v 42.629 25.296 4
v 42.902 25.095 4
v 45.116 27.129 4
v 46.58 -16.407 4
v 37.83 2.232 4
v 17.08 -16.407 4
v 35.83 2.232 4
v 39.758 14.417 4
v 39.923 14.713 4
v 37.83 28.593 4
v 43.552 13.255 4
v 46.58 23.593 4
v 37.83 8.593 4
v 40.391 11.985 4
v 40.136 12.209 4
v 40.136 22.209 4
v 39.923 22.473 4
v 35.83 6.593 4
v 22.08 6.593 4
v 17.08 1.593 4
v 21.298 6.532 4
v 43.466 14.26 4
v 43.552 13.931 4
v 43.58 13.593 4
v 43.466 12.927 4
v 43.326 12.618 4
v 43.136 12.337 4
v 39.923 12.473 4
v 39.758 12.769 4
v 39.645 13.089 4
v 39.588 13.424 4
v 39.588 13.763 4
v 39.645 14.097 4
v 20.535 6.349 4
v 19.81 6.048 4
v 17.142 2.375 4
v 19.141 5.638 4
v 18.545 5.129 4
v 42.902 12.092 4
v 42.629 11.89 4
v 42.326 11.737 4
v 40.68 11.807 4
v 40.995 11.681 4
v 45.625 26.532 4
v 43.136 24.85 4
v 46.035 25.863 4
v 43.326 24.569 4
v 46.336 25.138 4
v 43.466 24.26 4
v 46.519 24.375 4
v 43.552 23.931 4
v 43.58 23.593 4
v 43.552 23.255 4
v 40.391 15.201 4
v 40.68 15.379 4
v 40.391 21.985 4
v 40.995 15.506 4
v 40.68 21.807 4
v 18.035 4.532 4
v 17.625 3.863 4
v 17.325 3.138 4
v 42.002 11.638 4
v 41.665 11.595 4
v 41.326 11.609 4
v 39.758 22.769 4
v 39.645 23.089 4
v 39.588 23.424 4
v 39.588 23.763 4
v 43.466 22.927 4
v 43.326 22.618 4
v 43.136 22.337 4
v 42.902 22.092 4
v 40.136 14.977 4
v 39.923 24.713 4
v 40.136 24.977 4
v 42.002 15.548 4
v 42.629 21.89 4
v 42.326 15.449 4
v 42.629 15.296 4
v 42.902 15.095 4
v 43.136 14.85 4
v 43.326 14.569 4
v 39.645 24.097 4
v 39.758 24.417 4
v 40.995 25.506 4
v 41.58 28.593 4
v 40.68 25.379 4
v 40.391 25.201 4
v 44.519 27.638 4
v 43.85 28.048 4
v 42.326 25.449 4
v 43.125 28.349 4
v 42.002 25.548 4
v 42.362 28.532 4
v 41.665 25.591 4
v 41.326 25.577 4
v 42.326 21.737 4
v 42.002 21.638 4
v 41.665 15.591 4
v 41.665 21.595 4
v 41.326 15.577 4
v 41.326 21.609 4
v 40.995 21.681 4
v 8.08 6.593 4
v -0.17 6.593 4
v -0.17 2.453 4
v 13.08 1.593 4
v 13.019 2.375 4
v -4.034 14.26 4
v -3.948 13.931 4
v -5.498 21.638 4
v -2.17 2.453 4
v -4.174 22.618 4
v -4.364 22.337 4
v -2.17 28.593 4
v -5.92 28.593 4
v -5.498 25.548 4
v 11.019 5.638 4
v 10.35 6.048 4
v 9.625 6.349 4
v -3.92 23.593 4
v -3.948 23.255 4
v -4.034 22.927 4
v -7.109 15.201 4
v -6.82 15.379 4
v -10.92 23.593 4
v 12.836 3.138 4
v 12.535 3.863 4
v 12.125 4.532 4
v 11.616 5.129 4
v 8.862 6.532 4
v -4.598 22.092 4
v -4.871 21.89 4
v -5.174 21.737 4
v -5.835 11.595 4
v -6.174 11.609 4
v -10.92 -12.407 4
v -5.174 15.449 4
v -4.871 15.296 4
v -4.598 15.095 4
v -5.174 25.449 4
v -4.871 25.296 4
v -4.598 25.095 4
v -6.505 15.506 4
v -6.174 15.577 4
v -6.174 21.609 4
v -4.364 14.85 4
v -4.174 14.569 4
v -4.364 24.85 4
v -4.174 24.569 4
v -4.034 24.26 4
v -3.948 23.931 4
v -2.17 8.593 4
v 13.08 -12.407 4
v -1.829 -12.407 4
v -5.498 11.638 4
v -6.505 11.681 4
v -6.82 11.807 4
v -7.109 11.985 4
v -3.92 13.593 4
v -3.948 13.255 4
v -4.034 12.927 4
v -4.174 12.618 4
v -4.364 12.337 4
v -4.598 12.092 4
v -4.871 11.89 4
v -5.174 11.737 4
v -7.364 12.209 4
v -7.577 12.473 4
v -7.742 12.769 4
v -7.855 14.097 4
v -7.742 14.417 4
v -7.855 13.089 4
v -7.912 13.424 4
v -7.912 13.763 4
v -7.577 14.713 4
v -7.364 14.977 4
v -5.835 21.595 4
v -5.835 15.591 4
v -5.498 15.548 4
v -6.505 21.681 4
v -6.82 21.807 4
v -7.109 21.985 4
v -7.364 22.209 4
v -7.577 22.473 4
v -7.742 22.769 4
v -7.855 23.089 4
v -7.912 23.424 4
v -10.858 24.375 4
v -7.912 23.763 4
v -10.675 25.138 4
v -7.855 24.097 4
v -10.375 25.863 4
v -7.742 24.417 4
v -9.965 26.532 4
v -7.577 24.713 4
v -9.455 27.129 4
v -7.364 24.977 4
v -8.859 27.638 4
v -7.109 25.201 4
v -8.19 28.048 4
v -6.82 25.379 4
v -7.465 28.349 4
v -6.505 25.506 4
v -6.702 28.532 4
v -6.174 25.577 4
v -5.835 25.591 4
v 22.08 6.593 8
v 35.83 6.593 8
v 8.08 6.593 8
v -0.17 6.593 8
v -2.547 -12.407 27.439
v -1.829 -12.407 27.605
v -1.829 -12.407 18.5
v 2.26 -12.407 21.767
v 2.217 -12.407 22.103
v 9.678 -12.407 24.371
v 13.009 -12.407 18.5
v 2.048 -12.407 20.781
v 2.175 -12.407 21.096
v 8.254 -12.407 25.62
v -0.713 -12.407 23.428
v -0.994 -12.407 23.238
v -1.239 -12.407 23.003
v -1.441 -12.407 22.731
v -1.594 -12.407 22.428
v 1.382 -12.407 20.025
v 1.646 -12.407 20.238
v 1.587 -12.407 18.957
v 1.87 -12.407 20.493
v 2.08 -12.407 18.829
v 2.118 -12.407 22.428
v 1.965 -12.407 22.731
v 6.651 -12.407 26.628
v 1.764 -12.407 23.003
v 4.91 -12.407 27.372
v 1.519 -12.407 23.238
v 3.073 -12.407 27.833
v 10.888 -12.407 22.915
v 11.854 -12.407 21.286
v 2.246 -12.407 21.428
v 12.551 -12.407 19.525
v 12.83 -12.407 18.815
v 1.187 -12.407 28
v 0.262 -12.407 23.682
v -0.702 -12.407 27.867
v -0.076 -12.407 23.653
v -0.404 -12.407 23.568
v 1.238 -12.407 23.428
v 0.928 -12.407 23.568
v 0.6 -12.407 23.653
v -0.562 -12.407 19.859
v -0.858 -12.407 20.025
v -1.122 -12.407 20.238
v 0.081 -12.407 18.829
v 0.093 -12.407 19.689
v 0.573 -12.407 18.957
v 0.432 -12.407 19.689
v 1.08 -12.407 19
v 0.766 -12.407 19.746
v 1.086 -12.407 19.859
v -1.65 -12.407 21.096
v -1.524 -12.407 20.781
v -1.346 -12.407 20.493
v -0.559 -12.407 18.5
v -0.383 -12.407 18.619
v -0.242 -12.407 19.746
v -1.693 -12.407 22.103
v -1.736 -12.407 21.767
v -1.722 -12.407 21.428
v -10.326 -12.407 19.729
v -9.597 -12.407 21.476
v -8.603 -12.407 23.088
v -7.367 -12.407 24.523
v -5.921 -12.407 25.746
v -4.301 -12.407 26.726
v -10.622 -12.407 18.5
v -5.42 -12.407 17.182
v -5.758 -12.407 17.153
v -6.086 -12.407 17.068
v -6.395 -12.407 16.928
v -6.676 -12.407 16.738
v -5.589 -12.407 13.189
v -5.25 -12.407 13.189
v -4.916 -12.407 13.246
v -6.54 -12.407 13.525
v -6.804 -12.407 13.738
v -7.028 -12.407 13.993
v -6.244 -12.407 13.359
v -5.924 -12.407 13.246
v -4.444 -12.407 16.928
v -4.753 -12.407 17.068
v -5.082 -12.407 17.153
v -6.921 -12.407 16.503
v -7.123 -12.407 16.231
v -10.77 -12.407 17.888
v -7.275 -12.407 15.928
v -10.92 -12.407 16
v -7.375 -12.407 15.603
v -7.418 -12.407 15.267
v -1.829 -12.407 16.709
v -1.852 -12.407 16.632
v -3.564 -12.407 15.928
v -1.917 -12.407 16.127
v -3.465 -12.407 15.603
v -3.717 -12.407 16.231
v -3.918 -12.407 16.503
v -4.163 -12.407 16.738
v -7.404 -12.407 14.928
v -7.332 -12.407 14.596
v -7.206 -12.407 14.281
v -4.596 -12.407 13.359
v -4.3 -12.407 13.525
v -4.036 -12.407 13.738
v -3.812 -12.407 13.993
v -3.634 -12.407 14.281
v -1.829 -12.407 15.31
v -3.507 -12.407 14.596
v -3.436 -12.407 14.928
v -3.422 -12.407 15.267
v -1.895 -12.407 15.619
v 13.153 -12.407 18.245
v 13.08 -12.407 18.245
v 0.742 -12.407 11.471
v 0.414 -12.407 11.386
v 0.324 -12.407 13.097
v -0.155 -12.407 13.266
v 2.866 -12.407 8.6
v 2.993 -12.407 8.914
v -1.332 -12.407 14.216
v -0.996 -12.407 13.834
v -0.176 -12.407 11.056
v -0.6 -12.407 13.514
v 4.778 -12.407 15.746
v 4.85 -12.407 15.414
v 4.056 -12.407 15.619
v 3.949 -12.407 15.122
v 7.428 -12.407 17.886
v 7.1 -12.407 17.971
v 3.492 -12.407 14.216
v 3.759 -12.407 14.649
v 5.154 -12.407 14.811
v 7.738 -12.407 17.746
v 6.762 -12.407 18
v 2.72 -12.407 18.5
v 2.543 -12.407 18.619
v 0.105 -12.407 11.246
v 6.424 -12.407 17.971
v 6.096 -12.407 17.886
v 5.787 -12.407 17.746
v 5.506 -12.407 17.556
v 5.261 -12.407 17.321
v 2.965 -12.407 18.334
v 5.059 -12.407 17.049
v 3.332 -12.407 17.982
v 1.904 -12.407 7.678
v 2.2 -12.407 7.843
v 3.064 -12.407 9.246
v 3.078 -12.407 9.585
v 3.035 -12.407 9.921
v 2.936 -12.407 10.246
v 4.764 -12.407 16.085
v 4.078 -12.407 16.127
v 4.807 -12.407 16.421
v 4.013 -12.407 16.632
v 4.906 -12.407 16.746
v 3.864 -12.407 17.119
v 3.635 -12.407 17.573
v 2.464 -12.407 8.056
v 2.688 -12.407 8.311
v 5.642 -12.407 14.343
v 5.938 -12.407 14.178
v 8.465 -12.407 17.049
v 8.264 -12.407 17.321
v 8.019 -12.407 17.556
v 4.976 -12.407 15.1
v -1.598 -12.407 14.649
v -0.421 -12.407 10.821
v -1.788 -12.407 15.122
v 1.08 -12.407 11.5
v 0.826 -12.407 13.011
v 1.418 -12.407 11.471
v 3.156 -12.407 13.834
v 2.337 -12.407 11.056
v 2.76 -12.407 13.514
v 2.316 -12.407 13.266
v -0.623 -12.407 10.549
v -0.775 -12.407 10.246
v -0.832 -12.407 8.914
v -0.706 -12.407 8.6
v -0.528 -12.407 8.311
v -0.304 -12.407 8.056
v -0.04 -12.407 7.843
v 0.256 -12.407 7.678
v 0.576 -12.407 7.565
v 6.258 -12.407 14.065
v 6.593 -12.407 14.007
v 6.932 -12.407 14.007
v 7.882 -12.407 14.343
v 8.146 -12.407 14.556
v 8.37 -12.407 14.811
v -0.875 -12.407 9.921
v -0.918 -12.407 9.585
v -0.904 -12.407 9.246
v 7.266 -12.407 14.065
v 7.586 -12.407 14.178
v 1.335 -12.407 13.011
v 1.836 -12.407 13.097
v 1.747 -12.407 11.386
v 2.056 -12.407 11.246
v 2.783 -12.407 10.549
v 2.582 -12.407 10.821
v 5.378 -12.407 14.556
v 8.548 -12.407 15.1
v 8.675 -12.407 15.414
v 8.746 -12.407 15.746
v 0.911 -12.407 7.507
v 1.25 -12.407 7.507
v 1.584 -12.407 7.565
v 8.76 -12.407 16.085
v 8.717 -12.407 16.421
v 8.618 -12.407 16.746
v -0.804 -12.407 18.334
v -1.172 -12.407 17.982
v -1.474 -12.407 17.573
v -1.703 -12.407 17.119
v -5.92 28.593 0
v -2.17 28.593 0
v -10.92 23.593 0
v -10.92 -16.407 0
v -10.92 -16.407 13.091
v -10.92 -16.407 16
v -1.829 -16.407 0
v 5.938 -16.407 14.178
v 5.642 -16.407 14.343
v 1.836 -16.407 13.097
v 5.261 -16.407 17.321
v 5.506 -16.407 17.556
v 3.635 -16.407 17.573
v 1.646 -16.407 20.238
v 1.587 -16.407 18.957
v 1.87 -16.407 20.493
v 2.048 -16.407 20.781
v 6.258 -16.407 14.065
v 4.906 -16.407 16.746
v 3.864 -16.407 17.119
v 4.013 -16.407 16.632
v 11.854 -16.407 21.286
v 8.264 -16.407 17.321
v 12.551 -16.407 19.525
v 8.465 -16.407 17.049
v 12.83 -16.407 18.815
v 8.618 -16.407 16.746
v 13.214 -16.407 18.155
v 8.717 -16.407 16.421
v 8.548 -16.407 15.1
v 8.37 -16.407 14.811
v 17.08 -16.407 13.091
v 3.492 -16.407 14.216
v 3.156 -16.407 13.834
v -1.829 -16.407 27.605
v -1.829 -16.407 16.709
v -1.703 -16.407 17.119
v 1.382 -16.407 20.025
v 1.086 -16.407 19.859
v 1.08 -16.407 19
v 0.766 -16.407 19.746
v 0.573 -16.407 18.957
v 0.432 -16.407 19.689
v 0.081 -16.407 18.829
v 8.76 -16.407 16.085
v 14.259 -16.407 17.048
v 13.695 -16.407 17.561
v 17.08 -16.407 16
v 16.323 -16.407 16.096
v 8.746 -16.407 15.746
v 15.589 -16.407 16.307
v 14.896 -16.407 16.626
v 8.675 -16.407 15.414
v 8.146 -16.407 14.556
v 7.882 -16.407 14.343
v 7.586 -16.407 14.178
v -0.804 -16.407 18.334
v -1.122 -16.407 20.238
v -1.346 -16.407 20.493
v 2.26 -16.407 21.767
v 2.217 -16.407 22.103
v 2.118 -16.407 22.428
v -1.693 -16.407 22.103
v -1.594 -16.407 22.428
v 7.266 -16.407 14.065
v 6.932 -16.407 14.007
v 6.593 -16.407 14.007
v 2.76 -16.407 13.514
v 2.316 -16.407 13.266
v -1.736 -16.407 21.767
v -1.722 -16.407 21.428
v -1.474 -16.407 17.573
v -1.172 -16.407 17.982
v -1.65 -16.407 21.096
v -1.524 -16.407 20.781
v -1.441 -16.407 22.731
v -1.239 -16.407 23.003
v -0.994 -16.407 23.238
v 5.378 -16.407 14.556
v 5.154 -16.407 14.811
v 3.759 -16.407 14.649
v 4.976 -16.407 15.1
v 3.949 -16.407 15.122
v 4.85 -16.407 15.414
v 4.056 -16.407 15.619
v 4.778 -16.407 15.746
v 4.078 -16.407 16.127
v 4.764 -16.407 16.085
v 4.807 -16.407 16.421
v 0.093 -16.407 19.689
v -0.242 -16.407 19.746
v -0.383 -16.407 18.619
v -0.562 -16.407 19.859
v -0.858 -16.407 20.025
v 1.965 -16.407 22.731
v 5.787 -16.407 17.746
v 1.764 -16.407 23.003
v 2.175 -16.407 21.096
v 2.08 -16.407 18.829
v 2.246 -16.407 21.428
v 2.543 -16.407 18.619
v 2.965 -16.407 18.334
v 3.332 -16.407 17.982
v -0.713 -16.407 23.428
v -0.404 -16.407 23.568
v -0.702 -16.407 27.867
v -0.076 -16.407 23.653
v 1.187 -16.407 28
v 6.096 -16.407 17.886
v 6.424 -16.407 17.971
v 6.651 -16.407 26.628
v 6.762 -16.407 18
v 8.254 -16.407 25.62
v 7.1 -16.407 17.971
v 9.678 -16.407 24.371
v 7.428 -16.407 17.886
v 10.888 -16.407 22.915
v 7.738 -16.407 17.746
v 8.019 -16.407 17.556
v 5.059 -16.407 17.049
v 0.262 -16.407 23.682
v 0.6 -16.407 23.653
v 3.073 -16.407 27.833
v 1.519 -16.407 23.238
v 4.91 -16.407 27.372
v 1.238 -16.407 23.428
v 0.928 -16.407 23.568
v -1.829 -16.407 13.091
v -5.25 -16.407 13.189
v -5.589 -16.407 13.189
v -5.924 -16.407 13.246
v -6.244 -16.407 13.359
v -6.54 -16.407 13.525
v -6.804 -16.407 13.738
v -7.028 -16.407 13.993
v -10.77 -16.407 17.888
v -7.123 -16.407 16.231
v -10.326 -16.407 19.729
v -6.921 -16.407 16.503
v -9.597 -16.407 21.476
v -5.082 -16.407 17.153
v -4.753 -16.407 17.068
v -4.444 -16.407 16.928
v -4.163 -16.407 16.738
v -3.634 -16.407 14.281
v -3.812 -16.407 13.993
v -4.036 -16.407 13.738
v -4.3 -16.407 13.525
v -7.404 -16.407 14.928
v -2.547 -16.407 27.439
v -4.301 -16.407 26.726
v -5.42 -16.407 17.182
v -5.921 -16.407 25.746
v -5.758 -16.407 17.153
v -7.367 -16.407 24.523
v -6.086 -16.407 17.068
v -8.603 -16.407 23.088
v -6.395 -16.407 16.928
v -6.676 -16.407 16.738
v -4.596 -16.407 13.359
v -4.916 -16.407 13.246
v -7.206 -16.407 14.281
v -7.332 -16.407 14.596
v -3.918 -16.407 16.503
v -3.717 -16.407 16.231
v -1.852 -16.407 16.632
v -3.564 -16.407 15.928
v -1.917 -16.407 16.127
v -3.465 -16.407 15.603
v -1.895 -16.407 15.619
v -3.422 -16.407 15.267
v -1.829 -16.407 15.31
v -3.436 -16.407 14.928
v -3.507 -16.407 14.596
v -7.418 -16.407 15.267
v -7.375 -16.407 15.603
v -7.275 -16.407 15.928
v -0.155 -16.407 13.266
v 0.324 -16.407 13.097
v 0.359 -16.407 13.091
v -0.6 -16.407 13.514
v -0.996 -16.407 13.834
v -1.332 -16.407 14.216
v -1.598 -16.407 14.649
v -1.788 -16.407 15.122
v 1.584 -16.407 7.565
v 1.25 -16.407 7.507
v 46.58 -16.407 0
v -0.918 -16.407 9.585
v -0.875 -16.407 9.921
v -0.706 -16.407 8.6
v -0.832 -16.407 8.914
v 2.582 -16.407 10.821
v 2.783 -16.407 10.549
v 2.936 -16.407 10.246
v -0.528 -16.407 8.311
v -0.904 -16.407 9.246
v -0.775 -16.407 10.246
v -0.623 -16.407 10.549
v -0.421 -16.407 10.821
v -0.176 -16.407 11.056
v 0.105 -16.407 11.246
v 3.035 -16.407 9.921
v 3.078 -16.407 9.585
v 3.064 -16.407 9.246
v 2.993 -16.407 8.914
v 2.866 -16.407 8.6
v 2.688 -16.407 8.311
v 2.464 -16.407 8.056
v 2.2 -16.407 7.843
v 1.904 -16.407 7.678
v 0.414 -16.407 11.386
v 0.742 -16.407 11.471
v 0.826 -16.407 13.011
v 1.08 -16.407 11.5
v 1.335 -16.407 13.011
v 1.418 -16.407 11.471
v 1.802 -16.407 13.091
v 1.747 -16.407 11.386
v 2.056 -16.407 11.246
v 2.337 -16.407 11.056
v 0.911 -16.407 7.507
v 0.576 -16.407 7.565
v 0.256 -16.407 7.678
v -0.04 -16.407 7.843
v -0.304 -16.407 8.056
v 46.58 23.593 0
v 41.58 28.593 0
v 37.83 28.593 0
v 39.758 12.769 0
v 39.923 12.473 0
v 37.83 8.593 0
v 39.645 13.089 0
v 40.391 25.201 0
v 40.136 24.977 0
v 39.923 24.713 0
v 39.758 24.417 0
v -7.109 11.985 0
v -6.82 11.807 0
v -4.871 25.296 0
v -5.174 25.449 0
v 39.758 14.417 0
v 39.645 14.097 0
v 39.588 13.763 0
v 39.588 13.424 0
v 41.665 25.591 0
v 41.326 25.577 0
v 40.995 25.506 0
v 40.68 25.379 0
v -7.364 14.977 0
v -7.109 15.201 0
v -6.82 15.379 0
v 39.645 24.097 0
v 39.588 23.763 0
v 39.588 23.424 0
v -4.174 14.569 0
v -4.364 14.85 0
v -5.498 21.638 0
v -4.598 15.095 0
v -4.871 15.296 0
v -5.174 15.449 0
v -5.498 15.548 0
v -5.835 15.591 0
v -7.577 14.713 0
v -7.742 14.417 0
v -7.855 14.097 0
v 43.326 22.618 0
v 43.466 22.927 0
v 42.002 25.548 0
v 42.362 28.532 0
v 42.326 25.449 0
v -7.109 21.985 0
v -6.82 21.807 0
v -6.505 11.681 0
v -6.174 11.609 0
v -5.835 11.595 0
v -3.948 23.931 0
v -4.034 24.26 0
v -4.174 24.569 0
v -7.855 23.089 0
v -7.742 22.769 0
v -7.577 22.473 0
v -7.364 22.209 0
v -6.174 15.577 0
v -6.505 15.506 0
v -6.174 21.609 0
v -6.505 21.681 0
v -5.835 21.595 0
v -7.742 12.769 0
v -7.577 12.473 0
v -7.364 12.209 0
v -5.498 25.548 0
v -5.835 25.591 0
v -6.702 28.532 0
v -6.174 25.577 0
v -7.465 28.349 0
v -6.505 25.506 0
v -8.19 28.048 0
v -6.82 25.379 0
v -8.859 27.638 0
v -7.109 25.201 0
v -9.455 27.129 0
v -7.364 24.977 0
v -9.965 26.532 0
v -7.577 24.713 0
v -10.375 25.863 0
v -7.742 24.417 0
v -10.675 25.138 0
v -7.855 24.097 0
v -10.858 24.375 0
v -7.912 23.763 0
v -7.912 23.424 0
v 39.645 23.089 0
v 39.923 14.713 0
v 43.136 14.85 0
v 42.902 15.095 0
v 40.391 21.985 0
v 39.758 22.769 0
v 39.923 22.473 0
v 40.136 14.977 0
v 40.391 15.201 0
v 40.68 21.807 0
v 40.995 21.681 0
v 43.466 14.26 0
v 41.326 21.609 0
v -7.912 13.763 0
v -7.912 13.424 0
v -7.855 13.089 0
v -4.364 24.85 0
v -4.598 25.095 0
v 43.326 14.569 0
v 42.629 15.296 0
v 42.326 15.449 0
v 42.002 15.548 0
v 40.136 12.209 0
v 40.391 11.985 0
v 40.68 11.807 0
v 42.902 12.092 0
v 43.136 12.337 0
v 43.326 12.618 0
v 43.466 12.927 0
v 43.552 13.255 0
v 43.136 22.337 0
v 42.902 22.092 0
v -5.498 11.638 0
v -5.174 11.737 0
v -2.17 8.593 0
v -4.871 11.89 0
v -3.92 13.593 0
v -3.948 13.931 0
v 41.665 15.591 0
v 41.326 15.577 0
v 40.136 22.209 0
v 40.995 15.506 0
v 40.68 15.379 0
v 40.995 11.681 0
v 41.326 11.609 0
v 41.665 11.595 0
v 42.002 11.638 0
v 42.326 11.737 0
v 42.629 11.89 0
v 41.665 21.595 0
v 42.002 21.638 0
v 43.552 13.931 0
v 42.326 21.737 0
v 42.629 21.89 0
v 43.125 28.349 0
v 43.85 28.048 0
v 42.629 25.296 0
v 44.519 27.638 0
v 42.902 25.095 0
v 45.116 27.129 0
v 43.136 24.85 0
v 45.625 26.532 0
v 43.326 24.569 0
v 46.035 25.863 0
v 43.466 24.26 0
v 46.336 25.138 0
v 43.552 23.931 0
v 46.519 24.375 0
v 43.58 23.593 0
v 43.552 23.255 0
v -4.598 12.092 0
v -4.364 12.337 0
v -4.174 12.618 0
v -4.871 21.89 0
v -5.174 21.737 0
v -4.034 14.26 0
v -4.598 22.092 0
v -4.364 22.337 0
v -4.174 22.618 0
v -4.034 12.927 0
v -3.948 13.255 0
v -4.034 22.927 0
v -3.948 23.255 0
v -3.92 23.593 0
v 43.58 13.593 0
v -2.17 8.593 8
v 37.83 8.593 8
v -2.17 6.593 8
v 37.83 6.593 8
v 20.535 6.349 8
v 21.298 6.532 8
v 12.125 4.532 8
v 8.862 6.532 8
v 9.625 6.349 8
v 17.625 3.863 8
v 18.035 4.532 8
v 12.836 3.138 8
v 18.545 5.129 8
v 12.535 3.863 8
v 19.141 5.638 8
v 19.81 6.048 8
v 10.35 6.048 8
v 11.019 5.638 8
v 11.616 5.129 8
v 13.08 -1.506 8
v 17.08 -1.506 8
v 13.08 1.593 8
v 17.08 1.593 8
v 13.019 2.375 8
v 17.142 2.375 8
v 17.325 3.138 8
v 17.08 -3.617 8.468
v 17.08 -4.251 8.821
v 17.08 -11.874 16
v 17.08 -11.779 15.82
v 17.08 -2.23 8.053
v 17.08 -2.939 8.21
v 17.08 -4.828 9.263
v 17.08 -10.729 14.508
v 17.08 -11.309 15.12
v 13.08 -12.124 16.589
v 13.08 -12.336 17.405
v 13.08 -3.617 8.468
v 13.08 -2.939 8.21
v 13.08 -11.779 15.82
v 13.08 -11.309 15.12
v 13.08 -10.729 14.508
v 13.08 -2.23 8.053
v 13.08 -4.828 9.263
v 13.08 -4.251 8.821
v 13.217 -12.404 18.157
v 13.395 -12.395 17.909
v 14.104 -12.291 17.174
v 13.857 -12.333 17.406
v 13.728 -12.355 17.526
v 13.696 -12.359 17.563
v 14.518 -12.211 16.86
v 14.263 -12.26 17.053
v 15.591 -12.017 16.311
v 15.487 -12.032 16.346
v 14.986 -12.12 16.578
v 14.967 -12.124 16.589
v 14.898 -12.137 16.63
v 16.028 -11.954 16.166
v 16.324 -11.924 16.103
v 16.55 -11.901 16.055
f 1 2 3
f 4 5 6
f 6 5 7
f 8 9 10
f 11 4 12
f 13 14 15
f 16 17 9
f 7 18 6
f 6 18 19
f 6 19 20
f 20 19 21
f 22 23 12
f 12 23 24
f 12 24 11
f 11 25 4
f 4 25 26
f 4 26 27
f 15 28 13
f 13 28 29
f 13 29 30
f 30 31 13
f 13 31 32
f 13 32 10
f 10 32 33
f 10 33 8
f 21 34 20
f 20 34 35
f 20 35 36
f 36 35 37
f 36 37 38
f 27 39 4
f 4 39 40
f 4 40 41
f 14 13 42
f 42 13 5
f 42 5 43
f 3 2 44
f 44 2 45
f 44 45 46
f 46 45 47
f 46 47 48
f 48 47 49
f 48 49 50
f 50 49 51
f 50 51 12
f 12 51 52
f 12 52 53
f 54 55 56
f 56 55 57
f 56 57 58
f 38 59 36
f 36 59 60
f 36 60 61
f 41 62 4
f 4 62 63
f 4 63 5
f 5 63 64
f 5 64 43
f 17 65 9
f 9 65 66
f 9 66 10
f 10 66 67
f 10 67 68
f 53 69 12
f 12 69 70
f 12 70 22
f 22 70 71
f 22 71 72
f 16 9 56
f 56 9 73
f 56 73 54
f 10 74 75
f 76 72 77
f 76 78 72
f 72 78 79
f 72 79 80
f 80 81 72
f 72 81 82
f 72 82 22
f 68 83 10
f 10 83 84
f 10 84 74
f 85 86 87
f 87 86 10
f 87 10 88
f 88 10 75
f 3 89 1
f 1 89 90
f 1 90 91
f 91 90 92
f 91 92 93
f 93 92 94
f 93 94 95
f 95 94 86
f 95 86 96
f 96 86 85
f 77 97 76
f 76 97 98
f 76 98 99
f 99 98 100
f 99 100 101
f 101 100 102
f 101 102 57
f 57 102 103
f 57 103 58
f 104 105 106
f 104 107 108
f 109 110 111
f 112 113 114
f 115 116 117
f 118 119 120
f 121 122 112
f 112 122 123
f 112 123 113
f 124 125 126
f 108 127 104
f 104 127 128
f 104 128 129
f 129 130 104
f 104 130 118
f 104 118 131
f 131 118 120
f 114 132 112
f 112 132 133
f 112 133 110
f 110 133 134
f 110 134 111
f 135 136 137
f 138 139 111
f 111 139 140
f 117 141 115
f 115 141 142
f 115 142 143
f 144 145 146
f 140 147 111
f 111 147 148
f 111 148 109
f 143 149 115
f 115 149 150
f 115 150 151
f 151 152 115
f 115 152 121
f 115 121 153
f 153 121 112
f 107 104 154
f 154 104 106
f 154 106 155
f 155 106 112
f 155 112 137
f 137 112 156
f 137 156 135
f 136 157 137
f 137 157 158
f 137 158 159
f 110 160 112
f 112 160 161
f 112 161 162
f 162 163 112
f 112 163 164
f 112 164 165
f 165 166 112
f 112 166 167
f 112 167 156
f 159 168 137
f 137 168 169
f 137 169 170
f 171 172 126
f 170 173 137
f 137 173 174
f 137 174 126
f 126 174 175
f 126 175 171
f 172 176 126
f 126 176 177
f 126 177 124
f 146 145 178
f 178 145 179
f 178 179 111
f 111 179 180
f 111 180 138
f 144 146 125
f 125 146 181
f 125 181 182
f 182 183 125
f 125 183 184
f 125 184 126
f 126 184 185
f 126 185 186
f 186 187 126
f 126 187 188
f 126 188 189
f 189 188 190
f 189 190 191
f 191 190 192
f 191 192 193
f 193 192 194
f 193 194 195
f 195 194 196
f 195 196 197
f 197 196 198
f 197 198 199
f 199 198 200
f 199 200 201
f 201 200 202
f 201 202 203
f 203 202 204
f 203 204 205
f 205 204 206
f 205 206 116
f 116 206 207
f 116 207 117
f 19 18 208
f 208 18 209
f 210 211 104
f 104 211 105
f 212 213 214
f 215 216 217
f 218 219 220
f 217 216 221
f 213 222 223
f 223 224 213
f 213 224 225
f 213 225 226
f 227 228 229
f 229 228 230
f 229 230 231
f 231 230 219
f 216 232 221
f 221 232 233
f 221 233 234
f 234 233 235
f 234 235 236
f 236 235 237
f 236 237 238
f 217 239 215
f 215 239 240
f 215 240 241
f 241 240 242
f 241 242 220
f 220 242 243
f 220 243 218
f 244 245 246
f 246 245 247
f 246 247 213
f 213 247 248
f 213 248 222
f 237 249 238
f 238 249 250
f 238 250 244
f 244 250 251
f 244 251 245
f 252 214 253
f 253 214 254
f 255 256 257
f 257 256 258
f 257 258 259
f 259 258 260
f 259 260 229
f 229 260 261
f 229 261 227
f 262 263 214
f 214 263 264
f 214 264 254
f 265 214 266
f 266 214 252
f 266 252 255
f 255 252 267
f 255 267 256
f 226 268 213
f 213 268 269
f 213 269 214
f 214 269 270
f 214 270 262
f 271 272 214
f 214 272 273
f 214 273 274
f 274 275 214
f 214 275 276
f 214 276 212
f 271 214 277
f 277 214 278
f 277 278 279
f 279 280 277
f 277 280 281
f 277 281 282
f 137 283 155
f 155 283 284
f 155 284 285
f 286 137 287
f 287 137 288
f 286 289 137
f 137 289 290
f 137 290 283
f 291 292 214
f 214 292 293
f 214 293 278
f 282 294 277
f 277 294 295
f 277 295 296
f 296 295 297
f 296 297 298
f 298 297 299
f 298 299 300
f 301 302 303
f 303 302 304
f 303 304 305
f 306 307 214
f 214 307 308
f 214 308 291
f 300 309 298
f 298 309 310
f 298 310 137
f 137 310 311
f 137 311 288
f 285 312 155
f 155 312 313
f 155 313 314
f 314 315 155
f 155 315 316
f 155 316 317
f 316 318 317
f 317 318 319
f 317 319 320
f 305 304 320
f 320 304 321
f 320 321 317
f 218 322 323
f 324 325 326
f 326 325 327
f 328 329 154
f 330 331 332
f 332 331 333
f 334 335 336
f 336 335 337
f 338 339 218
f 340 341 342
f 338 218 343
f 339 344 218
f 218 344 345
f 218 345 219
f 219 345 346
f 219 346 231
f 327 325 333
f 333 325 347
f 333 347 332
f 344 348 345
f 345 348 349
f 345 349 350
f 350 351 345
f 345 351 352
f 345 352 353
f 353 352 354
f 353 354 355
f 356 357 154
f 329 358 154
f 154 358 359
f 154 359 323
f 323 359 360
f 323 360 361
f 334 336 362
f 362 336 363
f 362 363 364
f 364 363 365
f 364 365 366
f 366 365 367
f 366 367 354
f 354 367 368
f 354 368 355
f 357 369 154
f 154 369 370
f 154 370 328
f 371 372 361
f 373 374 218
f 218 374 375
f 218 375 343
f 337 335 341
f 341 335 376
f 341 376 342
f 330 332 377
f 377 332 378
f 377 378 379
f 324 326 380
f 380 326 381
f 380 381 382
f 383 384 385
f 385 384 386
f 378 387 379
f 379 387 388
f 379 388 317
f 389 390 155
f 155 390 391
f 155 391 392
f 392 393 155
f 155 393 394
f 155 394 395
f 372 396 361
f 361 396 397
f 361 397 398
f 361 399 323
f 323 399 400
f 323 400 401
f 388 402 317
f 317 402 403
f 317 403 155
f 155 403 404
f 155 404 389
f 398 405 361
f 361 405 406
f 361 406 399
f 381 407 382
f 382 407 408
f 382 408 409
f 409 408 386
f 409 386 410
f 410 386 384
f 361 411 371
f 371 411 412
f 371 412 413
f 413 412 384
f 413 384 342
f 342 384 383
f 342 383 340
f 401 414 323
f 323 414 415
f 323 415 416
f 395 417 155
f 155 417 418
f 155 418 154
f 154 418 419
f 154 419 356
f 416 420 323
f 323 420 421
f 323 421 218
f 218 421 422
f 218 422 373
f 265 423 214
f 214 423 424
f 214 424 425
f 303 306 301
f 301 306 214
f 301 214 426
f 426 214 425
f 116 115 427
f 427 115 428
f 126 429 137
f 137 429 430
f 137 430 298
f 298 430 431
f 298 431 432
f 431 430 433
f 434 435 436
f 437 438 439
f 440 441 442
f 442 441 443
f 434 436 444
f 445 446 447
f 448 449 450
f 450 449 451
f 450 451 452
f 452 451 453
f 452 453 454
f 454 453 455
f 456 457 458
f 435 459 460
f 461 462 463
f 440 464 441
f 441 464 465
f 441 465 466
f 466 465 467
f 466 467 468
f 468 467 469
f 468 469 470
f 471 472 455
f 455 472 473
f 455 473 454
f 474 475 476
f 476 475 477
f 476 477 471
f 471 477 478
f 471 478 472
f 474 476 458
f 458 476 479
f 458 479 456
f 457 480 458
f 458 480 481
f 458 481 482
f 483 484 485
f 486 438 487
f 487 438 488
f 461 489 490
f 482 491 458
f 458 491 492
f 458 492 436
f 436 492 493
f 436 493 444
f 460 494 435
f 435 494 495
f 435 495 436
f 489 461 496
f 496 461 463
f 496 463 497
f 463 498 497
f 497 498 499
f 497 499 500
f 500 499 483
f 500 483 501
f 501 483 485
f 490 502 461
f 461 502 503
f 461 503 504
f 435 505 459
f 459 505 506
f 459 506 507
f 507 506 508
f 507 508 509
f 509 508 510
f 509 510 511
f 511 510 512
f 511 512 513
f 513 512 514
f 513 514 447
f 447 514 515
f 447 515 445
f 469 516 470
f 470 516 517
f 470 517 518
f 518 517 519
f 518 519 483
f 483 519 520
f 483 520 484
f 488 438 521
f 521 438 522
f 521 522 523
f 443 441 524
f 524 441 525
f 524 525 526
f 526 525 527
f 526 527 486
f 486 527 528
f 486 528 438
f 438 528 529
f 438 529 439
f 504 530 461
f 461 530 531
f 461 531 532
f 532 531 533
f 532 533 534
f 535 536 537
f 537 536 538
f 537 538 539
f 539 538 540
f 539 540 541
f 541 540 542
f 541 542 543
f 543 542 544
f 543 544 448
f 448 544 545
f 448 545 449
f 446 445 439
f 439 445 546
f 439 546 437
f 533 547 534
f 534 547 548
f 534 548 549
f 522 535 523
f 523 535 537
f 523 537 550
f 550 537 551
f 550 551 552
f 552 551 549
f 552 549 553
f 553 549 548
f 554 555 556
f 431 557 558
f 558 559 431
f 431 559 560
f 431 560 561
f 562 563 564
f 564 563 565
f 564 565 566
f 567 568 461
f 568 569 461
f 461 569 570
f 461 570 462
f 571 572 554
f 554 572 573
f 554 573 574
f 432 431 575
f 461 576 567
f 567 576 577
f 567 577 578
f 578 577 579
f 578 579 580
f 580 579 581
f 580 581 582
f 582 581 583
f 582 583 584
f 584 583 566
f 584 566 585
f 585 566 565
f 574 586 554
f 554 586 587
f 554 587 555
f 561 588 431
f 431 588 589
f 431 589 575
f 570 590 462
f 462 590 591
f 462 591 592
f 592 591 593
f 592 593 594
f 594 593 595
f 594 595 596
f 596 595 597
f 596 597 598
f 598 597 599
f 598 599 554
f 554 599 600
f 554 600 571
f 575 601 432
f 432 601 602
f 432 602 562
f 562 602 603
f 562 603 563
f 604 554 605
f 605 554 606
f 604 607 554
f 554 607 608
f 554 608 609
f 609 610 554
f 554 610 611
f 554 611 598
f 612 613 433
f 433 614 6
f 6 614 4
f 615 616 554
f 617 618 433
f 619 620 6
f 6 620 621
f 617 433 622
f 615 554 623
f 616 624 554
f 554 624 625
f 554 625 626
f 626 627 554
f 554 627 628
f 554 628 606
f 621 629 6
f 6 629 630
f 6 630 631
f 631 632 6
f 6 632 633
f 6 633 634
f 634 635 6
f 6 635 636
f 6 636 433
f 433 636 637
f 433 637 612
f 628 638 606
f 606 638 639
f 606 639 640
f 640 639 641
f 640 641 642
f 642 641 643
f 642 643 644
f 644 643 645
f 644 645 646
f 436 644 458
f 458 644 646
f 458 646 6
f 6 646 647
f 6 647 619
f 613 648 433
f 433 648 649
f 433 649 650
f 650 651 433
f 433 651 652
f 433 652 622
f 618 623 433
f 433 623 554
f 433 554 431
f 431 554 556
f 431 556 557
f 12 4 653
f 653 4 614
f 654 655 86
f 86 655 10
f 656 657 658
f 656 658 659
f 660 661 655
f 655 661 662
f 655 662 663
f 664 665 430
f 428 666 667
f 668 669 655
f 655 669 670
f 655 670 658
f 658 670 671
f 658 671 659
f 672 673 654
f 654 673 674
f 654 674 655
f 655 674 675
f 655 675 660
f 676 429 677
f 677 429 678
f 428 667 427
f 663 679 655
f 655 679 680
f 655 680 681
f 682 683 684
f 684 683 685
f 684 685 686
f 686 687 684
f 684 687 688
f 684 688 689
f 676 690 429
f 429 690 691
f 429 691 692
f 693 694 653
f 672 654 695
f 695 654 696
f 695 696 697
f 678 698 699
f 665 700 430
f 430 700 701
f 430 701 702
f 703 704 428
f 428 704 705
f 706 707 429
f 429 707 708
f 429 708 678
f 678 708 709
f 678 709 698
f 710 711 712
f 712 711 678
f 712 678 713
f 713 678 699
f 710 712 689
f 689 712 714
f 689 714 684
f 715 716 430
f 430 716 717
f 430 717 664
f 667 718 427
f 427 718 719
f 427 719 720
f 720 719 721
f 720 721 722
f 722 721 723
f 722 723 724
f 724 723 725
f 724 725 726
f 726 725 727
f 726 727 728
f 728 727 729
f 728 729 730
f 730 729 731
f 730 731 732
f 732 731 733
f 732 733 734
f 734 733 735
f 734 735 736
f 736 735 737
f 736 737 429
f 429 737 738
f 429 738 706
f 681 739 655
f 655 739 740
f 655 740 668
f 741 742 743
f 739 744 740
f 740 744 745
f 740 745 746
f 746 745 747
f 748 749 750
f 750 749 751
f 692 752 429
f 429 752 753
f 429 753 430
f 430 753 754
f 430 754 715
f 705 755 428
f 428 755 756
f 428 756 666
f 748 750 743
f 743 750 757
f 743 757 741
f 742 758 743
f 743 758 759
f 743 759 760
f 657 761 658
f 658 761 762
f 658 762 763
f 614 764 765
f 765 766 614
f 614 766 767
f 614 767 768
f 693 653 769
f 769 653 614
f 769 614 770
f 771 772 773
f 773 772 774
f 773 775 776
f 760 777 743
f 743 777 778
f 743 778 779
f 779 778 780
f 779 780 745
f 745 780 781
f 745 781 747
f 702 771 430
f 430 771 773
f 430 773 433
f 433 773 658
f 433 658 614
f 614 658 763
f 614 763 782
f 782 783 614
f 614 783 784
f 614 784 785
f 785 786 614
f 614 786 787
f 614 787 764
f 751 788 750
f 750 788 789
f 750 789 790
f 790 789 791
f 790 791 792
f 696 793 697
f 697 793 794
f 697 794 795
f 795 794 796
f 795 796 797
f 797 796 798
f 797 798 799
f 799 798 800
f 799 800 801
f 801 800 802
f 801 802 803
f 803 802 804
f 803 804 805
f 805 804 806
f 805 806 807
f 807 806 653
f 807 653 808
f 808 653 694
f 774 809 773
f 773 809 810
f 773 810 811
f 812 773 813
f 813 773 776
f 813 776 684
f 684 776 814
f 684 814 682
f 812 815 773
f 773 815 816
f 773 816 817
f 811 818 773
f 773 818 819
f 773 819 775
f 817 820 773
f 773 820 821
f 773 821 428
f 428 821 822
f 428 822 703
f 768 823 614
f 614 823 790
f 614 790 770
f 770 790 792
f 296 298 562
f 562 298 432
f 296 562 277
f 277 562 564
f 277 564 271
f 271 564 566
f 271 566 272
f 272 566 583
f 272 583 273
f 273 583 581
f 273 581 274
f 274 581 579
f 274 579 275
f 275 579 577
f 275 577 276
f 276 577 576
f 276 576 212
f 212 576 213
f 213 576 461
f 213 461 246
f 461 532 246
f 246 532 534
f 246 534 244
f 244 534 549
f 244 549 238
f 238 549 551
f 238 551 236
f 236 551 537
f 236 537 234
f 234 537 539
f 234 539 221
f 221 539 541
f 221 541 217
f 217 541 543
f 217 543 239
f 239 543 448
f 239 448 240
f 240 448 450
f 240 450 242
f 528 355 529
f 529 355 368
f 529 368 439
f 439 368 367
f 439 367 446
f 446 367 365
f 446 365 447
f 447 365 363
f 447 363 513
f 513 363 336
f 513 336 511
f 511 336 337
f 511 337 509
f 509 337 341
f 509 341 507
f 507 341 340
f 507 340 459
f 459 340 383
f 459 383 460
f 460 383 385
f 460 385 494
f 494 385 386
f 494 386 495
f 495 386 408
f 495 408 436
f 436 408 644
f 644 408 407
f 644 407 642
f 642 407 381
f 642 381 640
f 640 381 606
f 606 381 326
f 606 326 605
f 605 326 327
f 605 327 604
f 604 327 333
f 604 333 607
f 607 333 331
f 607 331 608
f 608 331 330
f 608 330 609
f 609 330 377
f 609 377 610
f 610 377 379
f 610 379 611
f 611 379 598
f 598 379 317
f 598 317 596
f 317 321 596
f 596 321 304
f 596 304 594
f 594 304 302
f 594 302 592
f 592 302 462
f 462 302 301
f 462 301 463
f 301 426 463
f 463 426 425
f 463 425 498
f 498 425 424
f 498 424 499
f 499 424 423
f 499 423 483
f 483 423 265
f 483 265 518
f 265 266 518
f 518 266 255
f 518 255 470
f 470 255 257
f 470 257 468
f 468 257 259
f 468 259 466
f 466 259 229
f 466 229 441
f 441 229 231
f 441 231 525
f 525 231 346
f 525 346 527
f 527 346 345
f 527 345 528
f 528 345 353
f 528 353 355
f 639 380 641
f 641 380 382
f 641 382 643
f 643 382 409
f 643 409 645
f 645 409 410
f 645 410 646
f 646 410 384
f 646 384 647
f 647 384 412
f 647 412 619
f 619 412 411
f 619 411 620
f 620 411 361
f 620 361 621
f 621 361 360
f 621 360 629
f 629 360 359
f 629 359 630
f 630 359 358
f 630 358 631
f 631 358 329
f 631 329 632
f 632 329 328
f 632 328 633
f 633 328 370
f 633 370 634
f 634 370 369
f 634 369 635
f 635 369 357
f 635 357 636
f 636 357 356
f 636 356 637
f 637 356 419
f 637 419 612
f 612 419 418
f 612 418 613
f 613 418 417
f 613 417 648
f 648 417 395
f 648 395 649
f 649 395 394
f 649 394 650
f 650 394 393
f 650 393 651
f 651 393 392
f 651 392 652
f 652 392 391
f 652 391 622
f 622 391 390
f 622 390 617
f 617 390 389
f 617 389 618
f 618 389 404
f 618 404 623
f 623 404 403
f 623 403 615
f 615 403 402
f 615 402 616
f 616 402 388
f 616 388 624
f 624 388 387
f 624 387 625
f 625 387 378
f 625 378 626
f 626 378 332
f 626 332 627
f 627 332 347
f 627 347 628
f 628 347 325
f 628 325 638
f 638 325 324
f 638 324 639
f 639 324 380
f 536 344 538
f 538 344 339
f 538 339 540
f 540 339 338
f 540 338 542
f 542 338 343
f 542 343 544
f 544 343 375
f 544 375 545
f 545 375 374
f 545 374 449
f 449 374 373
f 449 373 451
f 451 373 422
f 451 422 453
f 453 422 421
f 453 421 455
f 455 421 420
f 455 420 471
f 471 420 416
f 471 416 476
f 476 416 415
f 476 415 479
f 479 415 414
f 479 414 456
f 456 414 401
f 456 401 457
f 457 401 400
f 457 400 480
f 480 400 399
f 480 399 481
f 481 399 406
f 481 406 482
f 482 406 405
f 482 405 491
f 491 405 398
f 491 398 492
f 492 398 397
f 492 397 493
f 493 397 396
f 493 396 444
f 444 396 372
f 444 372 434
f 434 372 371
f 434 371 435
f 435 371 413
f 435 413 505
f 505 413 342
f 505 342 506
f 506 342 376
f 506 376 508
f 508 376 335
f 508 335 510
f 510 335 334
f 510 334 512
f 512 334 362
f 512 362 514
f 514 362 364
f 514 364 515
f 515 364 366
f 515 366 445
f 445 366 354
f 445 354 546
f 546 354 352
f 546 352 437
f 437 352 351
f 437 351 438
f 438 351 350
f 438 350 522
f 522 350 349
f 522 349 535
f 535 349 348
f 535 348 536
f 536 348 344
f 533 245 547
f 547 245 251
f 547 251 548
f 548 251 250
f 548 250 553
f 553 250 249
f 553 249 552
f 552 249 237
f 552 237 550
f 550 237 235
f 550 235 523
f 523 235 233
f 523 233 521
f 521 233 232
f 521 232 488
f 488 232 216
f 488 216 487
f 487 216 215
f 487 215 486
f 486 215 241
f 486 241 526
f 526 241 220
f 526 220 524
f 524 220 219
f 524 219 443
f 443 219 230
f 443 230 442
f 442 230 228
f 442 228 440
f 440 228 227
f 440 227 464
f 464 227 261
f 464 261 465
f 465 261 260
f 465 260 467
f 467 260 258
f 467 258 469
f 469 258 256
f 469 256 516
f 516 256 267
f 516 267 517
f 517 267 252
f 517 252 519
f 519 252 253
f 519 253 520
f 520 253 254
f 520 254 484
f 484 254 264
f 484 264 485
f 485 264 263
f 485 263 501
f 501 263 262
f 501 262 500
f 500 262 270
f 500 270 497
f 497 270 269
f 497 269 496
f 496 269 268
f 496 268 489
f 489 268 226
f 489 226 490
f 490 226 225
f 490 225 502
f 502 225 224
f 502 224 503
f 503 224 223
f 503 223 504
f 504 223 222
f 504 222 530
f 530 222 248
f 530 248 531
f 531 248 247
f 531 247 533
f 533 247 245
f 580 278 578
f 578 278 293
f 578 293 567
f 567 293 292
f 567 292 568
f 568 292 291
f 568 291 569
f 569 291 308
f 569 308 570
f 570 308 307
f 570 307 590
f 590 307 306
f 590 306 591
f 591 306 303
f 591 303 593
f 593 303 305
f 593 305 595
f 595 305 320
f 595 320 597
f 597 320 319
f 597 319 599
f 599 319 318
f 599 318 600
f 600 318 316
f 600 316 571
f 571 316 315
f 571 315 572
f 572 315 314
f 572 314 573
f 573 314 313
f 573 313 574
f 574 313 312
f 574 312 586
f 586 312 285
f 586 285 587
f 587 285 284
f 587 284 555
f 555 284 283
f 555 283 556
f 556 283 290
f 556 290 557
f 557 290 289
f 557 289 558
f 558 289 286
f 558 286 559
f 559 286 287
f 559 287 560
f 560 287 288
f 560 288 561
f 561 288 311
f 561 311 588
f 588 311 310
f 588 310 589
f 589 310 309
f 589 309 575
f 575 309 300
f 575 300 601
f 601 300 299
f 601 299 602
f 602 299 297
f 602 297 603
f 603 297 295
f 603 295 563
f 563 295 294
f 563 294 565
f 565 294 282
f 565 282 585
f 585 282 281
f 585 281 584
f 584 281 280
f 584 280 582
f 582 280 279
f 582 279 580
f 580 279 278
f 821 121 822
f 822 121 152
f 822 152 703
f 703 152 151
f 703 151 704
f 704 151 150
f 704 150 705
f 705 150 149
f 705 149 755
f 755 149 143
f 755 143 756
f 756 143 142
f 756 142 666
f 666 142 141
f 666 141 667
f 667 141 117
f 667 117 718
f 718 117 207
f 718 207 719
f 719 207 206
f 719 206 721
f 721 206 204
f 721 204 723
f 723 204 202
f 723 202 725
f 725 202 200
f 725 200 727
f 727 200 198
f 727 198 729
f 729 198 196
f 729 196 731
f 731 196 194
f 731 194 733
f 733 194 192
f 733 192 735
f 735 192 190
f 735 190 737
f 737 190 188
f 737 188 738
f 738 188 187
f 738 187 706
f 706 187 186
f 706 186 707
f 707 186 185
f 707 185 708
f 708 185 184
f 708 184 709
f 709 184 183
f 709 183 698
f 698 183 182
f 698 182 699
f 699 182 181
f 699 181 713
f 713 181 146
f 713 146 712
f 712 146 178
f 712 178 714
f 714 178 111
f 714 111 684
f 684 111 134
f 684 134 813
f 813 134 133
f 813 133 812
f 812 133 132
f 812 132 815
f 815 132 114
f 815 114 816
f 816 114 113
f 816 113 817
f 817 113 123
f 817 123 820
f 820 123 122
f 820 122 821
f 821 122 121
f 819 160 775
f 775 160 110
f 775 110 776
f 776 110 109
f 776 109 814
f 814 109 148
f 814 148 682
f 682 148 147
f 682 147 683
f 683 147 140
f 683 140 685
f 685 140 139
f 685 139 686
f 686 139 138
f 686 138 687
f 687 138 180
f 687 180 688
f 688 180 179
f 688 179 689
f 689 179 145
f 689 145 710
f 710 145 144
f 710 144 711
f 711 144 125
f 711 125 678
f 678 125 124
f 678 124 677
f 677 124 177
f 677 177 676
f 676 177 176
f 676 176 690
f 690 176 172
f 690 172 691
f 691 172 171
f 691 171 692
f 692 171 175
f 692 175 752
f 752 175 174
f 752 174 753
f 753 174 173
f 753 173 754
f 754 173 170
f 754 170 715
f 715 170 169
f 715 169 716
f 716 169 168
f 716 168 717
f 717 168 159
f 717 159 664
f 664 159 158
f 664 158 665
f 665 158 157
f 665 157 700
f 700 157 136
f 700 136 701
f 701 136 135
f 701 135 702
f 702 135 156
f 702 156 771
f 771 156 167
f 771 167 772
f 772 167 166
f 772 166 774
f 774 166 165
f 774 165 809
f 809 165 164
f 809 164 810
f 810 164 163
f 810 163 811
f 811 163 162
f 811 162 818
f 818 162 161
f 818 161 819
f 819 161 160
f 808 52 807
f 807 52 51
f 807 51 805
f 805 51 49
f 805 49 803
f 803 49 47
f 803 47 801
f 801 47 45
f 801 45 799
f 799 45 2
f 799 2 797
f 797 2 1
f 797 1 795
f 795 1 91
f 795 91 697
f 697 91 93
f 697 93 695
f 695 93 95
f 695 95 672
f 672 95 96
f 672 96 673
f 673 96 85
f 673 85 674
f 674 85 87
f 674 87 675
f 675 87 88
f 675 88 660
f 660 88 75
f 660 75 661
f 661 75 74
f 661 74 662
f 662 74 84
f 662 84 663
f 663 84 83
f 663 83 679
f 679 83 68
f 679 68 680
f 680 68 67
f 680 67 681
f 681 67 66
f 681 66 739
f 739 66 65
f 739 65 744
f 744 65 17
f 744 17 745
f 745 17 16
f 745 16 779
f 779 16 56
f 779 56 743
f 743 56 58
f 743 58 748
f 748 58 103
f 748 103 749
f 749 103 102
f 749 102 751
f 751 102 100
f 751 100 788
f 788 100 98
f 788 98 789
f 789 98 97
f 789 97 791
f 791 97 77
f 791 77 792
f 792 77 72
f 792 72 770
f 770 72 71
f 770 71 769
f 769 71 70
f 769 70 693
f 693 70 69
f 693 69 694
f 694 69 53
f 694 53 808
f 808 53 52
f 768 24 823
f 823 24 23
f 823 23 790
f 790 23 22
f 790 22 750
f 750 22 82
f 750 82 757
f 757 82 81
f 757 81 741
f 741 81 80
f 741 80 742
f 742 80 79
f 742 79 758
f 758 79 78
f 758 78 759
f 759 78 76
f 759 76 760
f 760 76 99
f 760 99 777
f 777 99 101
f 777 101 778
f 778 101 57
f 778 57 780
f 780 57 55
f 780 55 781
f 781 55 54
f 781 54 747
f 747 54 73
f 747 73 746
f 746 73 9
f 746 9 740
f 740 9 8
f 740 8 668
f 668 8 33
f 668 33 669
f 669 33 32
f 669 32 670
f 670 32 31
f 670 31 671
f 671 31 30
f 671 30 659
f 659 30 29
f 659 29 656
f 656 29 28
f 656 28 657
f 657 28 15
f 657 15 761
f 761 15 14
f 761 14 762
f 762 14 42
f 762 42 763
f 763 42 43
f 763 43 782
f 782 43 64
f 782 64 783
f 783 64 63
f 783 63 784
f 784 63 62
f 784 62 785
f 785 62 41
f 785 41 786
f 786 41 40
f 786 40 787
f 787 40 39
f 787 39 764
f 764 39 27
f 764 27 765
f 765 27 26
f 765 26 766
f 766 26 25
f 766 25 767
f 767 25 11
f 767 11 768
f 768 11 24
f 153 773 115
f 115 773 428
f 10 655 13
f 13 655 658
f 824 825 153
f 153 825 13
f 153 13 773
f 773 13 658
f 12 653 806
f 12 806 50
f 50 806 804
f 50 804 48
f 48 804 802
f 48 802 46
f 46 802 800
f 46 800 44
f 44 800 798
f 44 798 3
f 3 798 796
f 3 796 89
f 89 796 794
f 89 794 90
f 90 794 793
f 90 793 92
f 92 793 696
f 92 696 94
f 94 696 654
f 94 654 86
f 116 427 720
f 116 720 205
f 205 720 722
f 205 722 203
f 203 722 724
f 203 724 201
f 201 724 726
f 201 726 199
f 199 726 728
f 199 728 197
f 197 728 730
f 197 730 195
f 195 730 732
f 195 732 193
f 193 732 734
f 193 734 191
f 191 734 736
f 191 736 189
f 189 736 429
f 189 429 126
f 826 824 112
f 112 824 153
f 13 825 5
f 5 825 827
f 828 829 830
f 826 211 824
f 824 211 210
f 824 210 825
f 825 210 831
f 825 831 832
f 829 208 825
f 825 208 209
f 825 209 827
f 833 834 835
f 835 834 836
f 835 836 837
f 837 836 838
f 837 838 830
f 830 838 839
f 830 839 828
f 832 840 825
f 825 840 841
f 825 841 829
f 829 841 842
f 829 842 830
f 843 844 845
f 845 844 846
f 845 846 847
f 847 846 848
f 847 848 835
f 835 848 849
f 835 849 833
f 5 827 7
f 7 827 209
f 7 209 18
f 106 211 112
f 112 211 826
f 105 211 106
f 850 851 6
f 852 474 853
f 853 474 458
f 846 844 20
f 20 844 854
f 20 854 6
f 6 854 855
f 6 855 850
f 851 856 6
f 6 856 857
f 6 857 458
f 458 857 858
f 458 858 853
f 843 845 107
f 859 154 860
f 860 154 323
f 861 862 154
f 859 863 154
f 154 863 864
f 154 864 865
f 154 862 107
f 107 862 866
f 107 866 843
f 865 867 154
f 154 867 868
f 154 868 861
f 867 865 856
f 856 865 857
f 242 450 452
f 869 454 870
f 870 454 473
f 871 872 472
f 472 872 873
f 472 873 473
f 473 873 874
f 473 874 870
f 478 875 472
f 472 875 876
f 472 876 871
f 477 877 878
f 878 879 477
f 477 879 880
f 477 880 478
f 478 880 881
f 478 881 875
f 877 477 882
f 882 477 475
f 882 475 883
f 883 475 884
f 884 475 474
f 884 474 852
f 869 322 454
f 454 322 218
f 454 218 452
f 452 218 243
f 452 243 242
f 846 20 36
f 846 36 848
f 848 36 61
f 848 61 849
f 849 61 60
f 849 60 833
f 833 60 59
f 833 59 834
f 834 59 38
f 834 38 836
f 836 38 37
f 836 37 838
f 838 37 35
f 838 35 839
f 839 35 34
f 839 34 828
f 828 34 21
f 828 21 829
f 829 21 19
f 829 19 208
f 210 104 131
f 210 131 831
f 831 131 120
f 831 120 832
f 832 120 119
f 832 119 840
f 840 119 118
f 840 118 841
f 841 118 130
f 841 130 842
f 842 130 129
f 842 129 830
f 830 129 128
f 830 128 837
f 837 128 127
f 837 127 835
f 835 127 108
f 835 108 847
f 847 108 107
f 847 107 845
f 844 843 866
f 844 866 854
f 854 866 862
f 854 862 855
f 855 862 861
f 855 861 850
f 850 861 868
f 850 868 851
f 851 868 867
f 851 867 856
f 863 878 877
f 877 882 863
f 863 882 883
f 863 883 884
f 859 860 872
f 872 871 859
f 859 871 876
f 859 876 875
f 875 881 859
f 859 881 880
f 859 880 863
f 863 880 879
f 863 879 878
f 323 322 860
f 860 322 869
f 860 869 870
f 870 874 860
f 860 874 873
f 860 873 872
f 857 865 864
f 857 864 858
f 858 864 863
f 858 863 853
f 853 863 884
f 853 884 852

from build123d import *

# Parameters (mm, degrees)
SKETCH1_W           = 57.5
SKETCH1_H           = 45
BOSS_EXTRUDE1_DEPTH = 4
SKETCH4_W           = 24
SKETCH4_H           = 4
BOSS_EXTRUDE4_DEPTH = 24
CUT_EXTRUDE1_START  = -4
CUT_EXTRUDE1_DEPTH  = 4
SKETCH6_R           = 3
SKETCH6_R_2         = 2
CUT_EXTRUDE2_DEPTH  = 24
SKETCH7_R           = 2
SKETCH7_W           = 40
SKETCH7_H           = 20
CUT_EXTRUDE3_DEPTH  = 24
FILLET2_R           = 5
SKETCH9_W           = 40
SKETCH9_H           = 2
BOSS_EXTRUDE5_DEPTH = 4
RIB1_REACH          = 61.005
SKETCH10_WALL_W     = 125.416867366
SKETCH10_WALL_H     = 2
RIB5_REACH          = 61.005
SKETCH11_WALL_W     = 125.5713139
SKETCH11_WALL_H     = 2
SKETCH13_W          = 12
SKETCH13_H          = 4
BOSS_EXTRUDE7_DEPTH = 4
SKETCH15_W          = 4
SKETCH15_H          = 12
BOSS_EXTRUDE8_DEPTH = 19
CUT_EXTRUDE4_DEPTH  = 15
FILLET5_R           = 5
FILLET6_R           = 5


# Read off the part's stored shape, not the designer's step: Cut-Extrude1
with BuildPart() as part:
    # Sketch1 → Boss-Extrude1 (new body)
    with BuildSketch(Plane.XY):
        with Locations((17.830298358, 6.093256958)):
            Rectangle(SKETCH1_W, SKETCH1_H)
    extrude(amount=BOSS_EXTRUDE1_DEPTH)

    # Sketch4 → Boss-Extrude4 (add)
    with BuildSketch(Plane.XY.offset(4)):
        with Locations((1.080298358, -14.406743042)):
            Rectangle(SKETCH4_W, SKETCH4_H)
    extrude(amount=BOSS_EXTRUDE4_DEPTH)

    # Cut-Extrude1 outline → Cut-Extrude1 (cut)
    with BuildSketch(Plane(origin=(0, -12.406743042, 0), x_dir=(1, 0, 0), z_dir=(0, 1, 0)).offset(CUT_EXTRUDE1_START)):
        with BuildLine():
            Line((13.080298358, -28), (13.080298358, -16))
            ThreePointArc((13.080298358, -16), (9.565579732, -24.485281374), (1.080298358, -28))
            Line((1.080298358, -28), (13.080298358, -28))
        make_face()
        with BuildLine():
            Line((-10.919701642, -28), (1.080298358, -28))
            ThreePointArc((1.080298358, -28), (-7.404983016, -24.485281374), (-10.919701642, -16))
            Line((-10.919701642, -16), (-10.919701642, -28))
        make_face()
    extrude(amount=CUT_EXTRUDE1_DEPTH, mode=Mode.SUBTRACT)

    # Sketch6 → Cut-Extrude2 (cut)
    with BuildSketch(Plane(origin=(0, -12.406743042, 0), x_dir=(1, 0, 0), z_dir=(0, 1, 0))):
        with Locations(Location((1.080298358, -16, 0), (0, 0, 270))):
            Circle(SKETCH6_R)
        with Locations(Location((1.080298358, -9.5, 0), (0, 0, 270))):
            Circle(SKETCH6_R_2)
        with Locations(Location((6.762193148, -16, 0), (0, 0, 270))):
            Circle(SKETCH6_R_2)
        with Locations(Location((0.262193148, -21.681894789, 0), (0, 0, 270))):
            Circle(SKETCH6_R_2)
        with Locations(Location((-5.419701642, -15.181894789, 0), (0, 0, 270))):
            Circle(SKETCH6_R_2)
    extrude(amount=-CUT_EXTRUDE2_DEPTH, mode=Mode.SUBTRACT)

    # Sketch7 → Cut-Extrude3 (cut)
    with BuildSketch(Plane.XY.offset(4)):
        with Locations((-5.919701642, 23.593256958)):
            Circle(SKETCH7_R)
        with Locations((-5.919701642, 13.593256958)):
            Circle(SKETCH7_R)
        with Locations((41.580298358, 23.593256958)):
            Circle(SKETCH7_R)
        with Locations((41.580298358, 13.593256958)):
            Circle(SKETCH7_R)
        with Locations((17.830298358, 18.593256958)):
            Rectangle(SKETCH7_W, SKETCH7_H)
    extrude(amount=-CUT_EXTRUDE3_DEPTH, mode=Mode.SUBTRACT)

    # Fillet2
    fillet2_edges = [part.edges().sort_by_distance(p)[0] for p in [
        (-10.919701642, 28.593256958, 2),
        (46.580298358, 28.593256958, 2),
    ]]
    fillet(fillet2_edges, radius=FILLET2_R)

    # Sketch9 → Boss-Extrude5 (add)
    with BuildSketch(Plane.XY.offset(4)):
        with Locations((17.830298358, 7.593256958)):
            Rectangle(SKETCH9_W, SKETCH9_H)
    extrude(amount=BOSS_EXTRUDE5_DEPTH)

    # Sketch10 wall → Rib1 (add, up to next)
    with BuildSketch(Plane(origin=(37.830298358, 4.600713915, 6.172546288), x_dir=(0, -0.736977999751, -0.675916731471), z_dir=(0, 0.675916731471, -0.736977999751)), mode=Mode.PRIVATE) as rib1_sk1:
        with Locations((0, 1)):
            Rectangle(SKETCH10_WALL_W, SKETCH10_WALL_H)
    rib1_tool1 = extrude(rib1_sk1.sketch, amount=RIB1_REACH, mode=Mode.PRIVATE) - part.part
    add(rib1_tool1.solids().sort_by_distance((37.830298358, 4.600713915, 6.172546288))[0])

    # Sketch11 wall → Rib5 (add, up to next)
    with BuildSketch(Plane(origin=(-2.169701642, 4.593256958, 6.067812051), x_dir=(0, -0.719194164668, -0.694809148981), z_dir=(0, 0.694809148981, -0.719194164668)), mode=Mode.PRIVATE) as rib5_sk1:
        with Locations((0, -1)):
            Rectangle(SKETCH11_WALL_W, SKETCH11_WALL_H)
    rib5_tool1 = extrude(rib5_sk1.sketch, amount=RIB5_REACH, mode=Mode.PRIVATE) - part.part
    add(rib5_tool1.solids().sort_by_distance((-2.169701642, 4.593256958, 6.067812051))[0])

    # Sketch13 → Boss-Extrude7 (add)
    with BuildSketch(Plane(origin=(13.080298358, 0, 0), x_dir=(0, 0, -1), z_dir=(1, 0, 0))):
        with Locations((-10, -14.406743042)):
            Rectangle(SKETCH13_W, SKETCH13_H)
    extrude(amount=BOSS_EXTRUDE7_DEPTH)

    # Sketch15 → Boss-Extrude8 (add)
    with BuildSketch(Plane(origin=(0, -12.406743042, 0), x_dir=(1, 0, 0), z_dir=(0, 1, 0))):
        with Locations((15.080298358, -10)):
            Rectangle(SKETCH15_W, SKETCH15_H)
    extrude(amount=BOSS_EXTRUDE8_DEPTH)

    # Sketch16 → Cut-Extrude4 (cut)
    with BuildSketch(Plane.ZY.offset(-13.080298358)):
        Polygon((8, 6.593256958), (8, -3.406743042), (16, -12.406743042), (16, 6.593256958), align=None)
    extrude(amount=-CUT_EXTRUDE4_DEPTH, mode=Mode.SUBTRACT)

    # Fillet5
    # the kernel refuses this fillet: 5 mm, written as the material it adds along each edge
    with BuildSketch(Plane(origin=(13.080298358, -16.406743042, 16), x_dir=(1, 0, 0), z_dir=(0, 1, 0))) as fillet5_piece_1:
        with BuildLine():
            CenterArc((4.25, -4.993746089), FILLET5_R, 92.865983979, 70.051432775)
            ThreePointArc((-0.529411765, -3.524997239), (-0.133090992, -1.782265577), (0, 0))
            Line((0, 0), (4, 0))
        make_face()
    extrude(amount=4)

    # Fillet6
    fillet6_edges = [part.edges().sort_by_distance(p)[0] for p in [
        (17.080298358, 6.593256958, 6),
        (13.080298358, 6.593256958, 6),
        (15.080298358, -3.406743042, 8),
        (15.080298358, -12.406743042, 16),
    ]]
    fillet(fillet6_edges, radius=FILLET6_R)


solid = part.part
